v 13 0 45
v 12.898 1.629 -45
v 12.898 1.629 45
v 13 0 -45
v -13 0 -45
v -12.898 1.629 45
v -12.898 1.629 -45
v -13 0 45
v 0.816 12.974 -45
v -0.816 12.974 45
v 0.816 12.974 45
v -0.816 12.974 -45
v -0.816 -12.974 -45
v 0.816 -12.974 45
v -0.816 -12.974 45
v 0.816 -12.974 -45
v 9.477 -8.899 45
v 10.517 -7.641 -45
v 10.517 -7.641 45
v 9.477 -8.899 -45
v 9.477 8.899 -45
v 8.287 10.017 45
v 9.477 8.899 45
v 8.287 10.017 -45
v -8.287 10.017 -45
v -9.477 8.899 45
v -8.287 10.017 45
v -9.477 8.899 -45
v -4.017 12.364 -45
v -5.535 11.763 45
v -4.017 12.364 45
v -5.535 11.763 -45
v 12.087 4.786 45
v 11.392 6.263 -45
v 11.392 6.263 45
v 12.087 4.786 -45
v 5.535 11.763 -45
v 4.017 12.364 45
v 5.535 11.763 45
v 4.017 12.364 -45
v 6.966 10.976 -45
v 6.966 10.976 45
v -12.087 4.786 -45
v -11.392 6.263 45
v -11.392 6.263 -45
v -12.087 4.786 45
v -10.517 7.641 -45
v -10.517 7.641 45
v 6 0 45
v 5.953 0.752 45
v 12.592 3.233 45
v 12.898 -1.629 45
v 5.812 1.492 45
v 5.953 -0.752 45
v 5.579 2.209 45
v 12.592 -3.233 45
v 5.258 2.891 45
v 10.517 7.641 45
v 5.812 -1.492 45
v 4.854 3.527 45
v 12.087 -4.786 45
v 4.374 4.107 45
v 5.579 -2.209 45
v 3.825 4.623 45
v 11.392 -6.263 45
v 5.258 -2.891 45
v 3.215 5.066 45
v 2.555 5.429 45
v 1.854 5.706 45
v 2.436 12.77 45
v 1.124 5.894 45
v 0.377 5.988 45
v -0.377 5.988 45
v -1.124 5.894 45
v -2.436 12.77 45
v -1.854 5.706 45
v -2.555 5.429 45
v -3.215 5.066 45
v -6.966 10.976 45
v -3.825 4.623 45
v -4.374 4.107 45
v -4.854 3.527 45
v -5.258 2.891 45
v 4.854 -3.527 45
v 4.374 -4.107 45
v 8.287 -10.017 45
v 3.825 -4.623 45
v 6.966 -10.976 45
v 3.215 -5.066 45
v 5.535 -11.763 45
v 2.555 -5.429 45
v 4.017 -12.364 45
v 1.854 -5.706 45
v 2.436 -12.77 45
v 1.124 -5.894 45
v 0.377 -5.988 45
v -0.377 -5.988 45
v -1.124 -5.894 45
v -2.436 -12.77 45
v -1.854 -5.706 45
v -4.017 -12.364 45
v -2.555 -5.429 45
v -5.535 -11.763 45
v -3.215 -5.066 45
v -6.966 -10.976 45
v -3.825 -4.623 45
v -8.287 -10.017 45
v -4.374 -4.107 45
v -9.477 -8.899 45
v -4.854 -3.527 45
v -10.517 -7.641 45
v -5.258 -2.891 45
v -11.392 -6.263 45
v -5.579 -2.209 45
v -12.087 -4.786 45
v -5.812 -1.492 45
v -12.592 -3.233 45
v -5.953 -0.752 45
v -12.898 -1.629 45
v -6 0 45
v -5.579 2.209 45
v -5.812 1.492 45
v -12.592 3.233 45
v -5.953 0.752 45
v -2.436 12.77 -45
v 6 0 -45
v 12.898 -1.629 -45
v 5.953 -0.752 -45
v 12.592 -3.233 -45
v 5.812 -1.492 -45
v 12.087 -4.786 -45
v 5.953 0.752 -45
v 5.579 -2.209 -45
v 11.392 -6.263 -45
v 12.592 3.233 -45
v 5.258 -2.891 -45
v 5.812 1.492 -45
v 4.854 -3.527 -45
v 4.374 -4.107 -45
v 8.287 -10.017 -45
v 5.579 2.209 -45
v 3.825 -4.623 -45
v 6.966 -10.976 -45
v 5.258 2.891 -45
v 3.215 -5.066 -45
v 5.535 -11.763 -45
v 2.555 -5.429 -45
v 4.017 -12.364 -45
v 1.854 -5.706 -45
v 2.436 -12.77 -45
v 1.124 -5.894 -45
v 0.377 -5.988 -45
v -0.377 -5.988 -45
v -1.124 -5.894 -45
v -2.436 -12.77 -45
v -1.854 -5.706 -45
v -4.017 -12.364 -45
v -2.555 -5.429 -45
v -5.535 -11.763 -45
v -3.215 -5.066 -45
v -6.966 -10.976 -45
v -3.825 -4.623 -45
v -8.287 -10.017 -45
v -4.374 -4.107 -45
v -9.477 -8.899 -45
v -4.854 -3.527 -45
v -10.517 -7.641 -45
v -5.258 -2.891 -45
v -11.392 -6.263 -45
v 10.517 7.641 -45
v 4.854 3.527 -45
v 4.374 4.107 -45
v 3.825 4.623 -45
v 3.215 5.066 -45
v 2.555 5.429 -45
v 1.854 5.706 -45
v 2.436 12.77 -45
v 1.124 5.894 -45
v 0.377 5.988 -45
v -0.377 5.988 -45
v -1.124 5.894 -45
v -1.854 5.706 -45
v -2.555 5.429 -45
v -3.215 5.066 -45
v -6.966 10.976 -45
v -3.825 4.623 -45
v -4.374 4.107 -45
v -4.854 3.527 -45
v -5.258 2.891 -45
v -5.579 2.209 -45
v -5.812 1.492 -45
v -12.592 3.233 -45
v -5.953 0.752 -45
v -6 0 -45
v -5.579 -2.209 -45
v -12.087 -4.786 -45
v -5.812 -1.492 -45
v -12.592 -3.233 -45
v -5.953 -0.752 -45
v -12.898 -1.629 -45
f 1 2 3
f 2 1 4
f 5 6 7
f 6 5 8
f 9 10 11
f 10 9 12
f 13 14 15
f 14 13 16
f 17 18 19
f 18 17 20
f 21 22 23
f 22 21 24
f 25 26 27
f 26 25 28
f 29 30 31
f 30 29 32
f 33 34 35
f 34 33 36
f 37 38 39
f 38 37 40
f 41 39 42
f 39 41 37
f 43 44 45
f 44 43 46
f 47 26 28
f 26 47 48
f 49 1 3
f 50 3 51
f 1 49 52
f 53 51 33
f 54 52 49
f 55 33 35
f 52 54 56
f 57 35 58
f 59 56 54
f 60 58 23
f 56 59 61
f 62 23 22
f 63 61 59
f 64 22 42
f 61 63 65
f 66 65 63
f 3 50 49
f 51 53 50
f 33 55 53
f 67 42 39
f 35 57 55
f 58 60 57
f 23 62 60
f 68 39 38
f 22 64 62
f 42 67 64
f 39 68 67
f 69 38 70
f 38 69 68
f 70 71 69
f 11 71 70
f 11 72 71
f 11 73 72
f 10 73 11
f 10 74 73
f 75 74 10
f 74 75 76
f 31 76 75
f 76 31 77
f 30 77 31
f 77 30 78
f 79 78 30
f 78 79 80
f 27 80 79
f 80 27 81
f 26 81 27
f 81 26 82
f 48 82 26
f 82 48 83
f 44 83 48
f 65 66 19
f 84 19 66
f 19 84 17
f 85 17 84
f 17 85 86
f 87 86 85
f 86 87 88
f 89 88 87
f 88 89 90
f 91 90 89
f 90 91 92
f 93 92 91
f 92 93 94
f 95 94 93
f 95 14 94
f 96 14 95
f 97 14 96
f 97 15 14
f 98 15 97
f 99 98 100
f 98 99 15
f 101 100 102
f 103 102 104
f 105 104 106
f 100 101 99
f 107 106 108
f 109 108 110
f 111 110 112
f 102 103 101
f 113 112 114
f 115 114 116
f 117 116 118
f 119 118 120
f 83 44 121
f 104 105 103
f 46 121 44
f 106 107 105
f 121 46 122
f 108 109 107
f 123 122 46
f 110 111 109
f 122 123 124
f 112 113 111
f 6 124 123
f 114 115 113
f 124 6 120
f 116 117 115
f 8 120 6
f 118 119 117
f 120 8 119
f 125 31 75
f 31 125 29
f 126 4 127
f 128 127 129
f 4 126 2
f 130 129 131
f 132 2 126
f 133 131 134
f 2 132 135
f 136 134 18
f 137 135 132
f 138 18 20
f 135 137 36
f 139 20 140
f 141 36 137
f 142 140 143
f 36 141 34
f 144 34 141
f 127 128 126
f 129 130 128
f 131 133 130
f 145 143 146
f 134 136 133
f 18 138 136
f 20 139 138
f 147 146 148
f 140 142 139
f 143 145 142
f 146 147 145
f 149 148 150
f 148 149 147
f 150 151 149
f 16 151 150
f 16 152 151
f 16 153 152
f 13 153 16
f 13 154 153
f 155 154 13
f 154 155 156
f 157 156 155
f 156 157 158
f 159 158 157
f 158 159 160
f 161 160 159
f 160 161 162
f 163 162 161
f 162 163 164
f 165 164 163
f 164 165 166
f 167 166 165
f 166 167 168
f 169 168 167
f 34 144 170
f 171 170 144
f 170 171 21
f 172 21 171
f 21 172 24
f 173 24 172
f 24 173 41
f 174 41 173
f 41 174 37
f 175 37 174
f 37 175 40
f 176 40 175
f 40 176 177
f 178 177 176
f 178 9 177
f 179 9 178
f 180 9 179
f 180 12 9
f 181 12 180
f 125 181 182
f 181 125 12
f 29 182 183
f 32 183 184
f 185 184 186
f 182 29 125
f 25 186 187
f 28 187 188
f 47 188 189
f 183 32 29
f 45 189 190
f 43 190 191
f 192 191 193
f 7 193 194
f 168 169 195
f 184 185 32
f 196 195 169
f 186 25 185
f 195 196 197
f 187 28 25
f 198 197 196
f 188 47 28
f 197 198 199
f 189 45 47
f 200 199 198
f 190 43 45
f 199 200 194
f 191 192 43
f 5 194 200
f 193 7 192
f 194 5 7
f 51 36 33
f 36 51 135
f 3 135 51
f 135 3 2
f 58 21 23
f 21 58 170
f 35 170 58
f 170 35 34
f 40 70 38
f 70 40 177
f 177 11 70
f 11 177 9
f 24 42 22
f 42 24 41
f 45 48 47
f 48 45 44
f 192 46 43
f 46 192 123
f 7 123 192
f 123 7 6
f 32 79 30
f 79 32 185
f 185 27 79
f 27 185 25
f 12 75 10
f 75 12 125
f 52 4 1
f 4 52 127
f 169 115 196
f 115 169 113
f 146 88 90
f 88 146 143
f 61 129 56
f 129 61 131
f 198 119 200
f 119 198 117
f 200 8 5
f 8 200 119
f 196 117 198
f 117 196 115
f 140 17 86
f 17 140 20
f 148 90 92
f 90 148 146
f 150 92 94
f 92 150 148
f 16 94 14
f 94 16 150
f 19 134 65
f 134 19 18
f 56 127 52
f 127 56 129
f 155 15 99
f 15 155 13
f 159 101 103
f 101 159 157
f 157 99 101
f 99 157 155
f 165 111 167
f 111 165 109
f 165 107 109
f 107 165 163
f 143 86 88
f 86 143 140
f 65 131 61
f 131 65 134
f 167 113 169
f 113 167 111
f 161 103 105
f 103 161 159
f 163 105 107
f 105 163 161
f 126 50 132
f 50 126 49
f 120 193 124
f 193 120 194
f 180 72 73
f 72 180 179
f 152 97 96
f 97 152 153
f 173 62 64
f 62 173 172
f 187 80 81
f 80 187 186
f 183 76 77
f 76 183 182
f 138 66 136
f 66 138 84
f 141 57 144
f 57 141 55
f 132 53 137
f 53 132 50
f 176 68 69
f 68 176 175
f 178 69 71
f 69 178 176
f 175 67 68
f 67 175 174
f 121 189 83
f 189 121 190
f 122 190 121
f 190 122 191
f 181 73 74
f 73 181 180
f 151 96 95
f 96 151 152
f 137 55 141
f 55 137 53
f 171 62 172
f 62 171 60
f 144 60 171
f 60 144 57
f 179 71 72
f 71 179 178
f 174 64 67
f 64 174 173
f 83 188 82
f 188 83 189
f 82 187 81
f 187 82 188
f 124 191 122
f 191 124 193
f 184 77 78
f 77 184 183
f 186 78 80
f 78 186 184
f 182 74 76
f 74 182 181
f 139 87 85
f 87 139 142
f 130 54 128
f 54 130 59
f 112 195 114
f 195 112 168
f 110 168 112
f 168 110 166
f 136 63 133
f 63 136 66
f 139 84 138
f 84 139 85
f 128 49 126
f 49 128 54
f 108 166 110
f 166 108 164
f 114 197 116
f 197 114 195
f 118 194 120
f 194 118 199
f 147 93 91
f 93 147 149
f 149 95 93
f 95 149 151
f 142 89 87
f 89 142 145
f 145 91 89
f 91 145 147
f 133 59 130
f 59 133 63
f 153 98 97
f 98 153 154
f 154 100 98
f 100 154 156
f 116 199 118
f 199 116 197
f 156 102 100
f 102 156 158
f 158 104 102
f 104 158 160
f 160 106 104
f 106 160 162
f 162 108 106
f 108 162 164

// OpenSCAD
$fn = 50;


difference() {
	union() {
		translate(v = [0, 0, -45.0000000000]) {
			cylinder(h = 90, r = 13.0000000000);
		}
	}
	union() {
		translate(v = [0, 0, -100.0000000000]) {
			cylinder(h = 200, r = 6);
		}
	}
}
